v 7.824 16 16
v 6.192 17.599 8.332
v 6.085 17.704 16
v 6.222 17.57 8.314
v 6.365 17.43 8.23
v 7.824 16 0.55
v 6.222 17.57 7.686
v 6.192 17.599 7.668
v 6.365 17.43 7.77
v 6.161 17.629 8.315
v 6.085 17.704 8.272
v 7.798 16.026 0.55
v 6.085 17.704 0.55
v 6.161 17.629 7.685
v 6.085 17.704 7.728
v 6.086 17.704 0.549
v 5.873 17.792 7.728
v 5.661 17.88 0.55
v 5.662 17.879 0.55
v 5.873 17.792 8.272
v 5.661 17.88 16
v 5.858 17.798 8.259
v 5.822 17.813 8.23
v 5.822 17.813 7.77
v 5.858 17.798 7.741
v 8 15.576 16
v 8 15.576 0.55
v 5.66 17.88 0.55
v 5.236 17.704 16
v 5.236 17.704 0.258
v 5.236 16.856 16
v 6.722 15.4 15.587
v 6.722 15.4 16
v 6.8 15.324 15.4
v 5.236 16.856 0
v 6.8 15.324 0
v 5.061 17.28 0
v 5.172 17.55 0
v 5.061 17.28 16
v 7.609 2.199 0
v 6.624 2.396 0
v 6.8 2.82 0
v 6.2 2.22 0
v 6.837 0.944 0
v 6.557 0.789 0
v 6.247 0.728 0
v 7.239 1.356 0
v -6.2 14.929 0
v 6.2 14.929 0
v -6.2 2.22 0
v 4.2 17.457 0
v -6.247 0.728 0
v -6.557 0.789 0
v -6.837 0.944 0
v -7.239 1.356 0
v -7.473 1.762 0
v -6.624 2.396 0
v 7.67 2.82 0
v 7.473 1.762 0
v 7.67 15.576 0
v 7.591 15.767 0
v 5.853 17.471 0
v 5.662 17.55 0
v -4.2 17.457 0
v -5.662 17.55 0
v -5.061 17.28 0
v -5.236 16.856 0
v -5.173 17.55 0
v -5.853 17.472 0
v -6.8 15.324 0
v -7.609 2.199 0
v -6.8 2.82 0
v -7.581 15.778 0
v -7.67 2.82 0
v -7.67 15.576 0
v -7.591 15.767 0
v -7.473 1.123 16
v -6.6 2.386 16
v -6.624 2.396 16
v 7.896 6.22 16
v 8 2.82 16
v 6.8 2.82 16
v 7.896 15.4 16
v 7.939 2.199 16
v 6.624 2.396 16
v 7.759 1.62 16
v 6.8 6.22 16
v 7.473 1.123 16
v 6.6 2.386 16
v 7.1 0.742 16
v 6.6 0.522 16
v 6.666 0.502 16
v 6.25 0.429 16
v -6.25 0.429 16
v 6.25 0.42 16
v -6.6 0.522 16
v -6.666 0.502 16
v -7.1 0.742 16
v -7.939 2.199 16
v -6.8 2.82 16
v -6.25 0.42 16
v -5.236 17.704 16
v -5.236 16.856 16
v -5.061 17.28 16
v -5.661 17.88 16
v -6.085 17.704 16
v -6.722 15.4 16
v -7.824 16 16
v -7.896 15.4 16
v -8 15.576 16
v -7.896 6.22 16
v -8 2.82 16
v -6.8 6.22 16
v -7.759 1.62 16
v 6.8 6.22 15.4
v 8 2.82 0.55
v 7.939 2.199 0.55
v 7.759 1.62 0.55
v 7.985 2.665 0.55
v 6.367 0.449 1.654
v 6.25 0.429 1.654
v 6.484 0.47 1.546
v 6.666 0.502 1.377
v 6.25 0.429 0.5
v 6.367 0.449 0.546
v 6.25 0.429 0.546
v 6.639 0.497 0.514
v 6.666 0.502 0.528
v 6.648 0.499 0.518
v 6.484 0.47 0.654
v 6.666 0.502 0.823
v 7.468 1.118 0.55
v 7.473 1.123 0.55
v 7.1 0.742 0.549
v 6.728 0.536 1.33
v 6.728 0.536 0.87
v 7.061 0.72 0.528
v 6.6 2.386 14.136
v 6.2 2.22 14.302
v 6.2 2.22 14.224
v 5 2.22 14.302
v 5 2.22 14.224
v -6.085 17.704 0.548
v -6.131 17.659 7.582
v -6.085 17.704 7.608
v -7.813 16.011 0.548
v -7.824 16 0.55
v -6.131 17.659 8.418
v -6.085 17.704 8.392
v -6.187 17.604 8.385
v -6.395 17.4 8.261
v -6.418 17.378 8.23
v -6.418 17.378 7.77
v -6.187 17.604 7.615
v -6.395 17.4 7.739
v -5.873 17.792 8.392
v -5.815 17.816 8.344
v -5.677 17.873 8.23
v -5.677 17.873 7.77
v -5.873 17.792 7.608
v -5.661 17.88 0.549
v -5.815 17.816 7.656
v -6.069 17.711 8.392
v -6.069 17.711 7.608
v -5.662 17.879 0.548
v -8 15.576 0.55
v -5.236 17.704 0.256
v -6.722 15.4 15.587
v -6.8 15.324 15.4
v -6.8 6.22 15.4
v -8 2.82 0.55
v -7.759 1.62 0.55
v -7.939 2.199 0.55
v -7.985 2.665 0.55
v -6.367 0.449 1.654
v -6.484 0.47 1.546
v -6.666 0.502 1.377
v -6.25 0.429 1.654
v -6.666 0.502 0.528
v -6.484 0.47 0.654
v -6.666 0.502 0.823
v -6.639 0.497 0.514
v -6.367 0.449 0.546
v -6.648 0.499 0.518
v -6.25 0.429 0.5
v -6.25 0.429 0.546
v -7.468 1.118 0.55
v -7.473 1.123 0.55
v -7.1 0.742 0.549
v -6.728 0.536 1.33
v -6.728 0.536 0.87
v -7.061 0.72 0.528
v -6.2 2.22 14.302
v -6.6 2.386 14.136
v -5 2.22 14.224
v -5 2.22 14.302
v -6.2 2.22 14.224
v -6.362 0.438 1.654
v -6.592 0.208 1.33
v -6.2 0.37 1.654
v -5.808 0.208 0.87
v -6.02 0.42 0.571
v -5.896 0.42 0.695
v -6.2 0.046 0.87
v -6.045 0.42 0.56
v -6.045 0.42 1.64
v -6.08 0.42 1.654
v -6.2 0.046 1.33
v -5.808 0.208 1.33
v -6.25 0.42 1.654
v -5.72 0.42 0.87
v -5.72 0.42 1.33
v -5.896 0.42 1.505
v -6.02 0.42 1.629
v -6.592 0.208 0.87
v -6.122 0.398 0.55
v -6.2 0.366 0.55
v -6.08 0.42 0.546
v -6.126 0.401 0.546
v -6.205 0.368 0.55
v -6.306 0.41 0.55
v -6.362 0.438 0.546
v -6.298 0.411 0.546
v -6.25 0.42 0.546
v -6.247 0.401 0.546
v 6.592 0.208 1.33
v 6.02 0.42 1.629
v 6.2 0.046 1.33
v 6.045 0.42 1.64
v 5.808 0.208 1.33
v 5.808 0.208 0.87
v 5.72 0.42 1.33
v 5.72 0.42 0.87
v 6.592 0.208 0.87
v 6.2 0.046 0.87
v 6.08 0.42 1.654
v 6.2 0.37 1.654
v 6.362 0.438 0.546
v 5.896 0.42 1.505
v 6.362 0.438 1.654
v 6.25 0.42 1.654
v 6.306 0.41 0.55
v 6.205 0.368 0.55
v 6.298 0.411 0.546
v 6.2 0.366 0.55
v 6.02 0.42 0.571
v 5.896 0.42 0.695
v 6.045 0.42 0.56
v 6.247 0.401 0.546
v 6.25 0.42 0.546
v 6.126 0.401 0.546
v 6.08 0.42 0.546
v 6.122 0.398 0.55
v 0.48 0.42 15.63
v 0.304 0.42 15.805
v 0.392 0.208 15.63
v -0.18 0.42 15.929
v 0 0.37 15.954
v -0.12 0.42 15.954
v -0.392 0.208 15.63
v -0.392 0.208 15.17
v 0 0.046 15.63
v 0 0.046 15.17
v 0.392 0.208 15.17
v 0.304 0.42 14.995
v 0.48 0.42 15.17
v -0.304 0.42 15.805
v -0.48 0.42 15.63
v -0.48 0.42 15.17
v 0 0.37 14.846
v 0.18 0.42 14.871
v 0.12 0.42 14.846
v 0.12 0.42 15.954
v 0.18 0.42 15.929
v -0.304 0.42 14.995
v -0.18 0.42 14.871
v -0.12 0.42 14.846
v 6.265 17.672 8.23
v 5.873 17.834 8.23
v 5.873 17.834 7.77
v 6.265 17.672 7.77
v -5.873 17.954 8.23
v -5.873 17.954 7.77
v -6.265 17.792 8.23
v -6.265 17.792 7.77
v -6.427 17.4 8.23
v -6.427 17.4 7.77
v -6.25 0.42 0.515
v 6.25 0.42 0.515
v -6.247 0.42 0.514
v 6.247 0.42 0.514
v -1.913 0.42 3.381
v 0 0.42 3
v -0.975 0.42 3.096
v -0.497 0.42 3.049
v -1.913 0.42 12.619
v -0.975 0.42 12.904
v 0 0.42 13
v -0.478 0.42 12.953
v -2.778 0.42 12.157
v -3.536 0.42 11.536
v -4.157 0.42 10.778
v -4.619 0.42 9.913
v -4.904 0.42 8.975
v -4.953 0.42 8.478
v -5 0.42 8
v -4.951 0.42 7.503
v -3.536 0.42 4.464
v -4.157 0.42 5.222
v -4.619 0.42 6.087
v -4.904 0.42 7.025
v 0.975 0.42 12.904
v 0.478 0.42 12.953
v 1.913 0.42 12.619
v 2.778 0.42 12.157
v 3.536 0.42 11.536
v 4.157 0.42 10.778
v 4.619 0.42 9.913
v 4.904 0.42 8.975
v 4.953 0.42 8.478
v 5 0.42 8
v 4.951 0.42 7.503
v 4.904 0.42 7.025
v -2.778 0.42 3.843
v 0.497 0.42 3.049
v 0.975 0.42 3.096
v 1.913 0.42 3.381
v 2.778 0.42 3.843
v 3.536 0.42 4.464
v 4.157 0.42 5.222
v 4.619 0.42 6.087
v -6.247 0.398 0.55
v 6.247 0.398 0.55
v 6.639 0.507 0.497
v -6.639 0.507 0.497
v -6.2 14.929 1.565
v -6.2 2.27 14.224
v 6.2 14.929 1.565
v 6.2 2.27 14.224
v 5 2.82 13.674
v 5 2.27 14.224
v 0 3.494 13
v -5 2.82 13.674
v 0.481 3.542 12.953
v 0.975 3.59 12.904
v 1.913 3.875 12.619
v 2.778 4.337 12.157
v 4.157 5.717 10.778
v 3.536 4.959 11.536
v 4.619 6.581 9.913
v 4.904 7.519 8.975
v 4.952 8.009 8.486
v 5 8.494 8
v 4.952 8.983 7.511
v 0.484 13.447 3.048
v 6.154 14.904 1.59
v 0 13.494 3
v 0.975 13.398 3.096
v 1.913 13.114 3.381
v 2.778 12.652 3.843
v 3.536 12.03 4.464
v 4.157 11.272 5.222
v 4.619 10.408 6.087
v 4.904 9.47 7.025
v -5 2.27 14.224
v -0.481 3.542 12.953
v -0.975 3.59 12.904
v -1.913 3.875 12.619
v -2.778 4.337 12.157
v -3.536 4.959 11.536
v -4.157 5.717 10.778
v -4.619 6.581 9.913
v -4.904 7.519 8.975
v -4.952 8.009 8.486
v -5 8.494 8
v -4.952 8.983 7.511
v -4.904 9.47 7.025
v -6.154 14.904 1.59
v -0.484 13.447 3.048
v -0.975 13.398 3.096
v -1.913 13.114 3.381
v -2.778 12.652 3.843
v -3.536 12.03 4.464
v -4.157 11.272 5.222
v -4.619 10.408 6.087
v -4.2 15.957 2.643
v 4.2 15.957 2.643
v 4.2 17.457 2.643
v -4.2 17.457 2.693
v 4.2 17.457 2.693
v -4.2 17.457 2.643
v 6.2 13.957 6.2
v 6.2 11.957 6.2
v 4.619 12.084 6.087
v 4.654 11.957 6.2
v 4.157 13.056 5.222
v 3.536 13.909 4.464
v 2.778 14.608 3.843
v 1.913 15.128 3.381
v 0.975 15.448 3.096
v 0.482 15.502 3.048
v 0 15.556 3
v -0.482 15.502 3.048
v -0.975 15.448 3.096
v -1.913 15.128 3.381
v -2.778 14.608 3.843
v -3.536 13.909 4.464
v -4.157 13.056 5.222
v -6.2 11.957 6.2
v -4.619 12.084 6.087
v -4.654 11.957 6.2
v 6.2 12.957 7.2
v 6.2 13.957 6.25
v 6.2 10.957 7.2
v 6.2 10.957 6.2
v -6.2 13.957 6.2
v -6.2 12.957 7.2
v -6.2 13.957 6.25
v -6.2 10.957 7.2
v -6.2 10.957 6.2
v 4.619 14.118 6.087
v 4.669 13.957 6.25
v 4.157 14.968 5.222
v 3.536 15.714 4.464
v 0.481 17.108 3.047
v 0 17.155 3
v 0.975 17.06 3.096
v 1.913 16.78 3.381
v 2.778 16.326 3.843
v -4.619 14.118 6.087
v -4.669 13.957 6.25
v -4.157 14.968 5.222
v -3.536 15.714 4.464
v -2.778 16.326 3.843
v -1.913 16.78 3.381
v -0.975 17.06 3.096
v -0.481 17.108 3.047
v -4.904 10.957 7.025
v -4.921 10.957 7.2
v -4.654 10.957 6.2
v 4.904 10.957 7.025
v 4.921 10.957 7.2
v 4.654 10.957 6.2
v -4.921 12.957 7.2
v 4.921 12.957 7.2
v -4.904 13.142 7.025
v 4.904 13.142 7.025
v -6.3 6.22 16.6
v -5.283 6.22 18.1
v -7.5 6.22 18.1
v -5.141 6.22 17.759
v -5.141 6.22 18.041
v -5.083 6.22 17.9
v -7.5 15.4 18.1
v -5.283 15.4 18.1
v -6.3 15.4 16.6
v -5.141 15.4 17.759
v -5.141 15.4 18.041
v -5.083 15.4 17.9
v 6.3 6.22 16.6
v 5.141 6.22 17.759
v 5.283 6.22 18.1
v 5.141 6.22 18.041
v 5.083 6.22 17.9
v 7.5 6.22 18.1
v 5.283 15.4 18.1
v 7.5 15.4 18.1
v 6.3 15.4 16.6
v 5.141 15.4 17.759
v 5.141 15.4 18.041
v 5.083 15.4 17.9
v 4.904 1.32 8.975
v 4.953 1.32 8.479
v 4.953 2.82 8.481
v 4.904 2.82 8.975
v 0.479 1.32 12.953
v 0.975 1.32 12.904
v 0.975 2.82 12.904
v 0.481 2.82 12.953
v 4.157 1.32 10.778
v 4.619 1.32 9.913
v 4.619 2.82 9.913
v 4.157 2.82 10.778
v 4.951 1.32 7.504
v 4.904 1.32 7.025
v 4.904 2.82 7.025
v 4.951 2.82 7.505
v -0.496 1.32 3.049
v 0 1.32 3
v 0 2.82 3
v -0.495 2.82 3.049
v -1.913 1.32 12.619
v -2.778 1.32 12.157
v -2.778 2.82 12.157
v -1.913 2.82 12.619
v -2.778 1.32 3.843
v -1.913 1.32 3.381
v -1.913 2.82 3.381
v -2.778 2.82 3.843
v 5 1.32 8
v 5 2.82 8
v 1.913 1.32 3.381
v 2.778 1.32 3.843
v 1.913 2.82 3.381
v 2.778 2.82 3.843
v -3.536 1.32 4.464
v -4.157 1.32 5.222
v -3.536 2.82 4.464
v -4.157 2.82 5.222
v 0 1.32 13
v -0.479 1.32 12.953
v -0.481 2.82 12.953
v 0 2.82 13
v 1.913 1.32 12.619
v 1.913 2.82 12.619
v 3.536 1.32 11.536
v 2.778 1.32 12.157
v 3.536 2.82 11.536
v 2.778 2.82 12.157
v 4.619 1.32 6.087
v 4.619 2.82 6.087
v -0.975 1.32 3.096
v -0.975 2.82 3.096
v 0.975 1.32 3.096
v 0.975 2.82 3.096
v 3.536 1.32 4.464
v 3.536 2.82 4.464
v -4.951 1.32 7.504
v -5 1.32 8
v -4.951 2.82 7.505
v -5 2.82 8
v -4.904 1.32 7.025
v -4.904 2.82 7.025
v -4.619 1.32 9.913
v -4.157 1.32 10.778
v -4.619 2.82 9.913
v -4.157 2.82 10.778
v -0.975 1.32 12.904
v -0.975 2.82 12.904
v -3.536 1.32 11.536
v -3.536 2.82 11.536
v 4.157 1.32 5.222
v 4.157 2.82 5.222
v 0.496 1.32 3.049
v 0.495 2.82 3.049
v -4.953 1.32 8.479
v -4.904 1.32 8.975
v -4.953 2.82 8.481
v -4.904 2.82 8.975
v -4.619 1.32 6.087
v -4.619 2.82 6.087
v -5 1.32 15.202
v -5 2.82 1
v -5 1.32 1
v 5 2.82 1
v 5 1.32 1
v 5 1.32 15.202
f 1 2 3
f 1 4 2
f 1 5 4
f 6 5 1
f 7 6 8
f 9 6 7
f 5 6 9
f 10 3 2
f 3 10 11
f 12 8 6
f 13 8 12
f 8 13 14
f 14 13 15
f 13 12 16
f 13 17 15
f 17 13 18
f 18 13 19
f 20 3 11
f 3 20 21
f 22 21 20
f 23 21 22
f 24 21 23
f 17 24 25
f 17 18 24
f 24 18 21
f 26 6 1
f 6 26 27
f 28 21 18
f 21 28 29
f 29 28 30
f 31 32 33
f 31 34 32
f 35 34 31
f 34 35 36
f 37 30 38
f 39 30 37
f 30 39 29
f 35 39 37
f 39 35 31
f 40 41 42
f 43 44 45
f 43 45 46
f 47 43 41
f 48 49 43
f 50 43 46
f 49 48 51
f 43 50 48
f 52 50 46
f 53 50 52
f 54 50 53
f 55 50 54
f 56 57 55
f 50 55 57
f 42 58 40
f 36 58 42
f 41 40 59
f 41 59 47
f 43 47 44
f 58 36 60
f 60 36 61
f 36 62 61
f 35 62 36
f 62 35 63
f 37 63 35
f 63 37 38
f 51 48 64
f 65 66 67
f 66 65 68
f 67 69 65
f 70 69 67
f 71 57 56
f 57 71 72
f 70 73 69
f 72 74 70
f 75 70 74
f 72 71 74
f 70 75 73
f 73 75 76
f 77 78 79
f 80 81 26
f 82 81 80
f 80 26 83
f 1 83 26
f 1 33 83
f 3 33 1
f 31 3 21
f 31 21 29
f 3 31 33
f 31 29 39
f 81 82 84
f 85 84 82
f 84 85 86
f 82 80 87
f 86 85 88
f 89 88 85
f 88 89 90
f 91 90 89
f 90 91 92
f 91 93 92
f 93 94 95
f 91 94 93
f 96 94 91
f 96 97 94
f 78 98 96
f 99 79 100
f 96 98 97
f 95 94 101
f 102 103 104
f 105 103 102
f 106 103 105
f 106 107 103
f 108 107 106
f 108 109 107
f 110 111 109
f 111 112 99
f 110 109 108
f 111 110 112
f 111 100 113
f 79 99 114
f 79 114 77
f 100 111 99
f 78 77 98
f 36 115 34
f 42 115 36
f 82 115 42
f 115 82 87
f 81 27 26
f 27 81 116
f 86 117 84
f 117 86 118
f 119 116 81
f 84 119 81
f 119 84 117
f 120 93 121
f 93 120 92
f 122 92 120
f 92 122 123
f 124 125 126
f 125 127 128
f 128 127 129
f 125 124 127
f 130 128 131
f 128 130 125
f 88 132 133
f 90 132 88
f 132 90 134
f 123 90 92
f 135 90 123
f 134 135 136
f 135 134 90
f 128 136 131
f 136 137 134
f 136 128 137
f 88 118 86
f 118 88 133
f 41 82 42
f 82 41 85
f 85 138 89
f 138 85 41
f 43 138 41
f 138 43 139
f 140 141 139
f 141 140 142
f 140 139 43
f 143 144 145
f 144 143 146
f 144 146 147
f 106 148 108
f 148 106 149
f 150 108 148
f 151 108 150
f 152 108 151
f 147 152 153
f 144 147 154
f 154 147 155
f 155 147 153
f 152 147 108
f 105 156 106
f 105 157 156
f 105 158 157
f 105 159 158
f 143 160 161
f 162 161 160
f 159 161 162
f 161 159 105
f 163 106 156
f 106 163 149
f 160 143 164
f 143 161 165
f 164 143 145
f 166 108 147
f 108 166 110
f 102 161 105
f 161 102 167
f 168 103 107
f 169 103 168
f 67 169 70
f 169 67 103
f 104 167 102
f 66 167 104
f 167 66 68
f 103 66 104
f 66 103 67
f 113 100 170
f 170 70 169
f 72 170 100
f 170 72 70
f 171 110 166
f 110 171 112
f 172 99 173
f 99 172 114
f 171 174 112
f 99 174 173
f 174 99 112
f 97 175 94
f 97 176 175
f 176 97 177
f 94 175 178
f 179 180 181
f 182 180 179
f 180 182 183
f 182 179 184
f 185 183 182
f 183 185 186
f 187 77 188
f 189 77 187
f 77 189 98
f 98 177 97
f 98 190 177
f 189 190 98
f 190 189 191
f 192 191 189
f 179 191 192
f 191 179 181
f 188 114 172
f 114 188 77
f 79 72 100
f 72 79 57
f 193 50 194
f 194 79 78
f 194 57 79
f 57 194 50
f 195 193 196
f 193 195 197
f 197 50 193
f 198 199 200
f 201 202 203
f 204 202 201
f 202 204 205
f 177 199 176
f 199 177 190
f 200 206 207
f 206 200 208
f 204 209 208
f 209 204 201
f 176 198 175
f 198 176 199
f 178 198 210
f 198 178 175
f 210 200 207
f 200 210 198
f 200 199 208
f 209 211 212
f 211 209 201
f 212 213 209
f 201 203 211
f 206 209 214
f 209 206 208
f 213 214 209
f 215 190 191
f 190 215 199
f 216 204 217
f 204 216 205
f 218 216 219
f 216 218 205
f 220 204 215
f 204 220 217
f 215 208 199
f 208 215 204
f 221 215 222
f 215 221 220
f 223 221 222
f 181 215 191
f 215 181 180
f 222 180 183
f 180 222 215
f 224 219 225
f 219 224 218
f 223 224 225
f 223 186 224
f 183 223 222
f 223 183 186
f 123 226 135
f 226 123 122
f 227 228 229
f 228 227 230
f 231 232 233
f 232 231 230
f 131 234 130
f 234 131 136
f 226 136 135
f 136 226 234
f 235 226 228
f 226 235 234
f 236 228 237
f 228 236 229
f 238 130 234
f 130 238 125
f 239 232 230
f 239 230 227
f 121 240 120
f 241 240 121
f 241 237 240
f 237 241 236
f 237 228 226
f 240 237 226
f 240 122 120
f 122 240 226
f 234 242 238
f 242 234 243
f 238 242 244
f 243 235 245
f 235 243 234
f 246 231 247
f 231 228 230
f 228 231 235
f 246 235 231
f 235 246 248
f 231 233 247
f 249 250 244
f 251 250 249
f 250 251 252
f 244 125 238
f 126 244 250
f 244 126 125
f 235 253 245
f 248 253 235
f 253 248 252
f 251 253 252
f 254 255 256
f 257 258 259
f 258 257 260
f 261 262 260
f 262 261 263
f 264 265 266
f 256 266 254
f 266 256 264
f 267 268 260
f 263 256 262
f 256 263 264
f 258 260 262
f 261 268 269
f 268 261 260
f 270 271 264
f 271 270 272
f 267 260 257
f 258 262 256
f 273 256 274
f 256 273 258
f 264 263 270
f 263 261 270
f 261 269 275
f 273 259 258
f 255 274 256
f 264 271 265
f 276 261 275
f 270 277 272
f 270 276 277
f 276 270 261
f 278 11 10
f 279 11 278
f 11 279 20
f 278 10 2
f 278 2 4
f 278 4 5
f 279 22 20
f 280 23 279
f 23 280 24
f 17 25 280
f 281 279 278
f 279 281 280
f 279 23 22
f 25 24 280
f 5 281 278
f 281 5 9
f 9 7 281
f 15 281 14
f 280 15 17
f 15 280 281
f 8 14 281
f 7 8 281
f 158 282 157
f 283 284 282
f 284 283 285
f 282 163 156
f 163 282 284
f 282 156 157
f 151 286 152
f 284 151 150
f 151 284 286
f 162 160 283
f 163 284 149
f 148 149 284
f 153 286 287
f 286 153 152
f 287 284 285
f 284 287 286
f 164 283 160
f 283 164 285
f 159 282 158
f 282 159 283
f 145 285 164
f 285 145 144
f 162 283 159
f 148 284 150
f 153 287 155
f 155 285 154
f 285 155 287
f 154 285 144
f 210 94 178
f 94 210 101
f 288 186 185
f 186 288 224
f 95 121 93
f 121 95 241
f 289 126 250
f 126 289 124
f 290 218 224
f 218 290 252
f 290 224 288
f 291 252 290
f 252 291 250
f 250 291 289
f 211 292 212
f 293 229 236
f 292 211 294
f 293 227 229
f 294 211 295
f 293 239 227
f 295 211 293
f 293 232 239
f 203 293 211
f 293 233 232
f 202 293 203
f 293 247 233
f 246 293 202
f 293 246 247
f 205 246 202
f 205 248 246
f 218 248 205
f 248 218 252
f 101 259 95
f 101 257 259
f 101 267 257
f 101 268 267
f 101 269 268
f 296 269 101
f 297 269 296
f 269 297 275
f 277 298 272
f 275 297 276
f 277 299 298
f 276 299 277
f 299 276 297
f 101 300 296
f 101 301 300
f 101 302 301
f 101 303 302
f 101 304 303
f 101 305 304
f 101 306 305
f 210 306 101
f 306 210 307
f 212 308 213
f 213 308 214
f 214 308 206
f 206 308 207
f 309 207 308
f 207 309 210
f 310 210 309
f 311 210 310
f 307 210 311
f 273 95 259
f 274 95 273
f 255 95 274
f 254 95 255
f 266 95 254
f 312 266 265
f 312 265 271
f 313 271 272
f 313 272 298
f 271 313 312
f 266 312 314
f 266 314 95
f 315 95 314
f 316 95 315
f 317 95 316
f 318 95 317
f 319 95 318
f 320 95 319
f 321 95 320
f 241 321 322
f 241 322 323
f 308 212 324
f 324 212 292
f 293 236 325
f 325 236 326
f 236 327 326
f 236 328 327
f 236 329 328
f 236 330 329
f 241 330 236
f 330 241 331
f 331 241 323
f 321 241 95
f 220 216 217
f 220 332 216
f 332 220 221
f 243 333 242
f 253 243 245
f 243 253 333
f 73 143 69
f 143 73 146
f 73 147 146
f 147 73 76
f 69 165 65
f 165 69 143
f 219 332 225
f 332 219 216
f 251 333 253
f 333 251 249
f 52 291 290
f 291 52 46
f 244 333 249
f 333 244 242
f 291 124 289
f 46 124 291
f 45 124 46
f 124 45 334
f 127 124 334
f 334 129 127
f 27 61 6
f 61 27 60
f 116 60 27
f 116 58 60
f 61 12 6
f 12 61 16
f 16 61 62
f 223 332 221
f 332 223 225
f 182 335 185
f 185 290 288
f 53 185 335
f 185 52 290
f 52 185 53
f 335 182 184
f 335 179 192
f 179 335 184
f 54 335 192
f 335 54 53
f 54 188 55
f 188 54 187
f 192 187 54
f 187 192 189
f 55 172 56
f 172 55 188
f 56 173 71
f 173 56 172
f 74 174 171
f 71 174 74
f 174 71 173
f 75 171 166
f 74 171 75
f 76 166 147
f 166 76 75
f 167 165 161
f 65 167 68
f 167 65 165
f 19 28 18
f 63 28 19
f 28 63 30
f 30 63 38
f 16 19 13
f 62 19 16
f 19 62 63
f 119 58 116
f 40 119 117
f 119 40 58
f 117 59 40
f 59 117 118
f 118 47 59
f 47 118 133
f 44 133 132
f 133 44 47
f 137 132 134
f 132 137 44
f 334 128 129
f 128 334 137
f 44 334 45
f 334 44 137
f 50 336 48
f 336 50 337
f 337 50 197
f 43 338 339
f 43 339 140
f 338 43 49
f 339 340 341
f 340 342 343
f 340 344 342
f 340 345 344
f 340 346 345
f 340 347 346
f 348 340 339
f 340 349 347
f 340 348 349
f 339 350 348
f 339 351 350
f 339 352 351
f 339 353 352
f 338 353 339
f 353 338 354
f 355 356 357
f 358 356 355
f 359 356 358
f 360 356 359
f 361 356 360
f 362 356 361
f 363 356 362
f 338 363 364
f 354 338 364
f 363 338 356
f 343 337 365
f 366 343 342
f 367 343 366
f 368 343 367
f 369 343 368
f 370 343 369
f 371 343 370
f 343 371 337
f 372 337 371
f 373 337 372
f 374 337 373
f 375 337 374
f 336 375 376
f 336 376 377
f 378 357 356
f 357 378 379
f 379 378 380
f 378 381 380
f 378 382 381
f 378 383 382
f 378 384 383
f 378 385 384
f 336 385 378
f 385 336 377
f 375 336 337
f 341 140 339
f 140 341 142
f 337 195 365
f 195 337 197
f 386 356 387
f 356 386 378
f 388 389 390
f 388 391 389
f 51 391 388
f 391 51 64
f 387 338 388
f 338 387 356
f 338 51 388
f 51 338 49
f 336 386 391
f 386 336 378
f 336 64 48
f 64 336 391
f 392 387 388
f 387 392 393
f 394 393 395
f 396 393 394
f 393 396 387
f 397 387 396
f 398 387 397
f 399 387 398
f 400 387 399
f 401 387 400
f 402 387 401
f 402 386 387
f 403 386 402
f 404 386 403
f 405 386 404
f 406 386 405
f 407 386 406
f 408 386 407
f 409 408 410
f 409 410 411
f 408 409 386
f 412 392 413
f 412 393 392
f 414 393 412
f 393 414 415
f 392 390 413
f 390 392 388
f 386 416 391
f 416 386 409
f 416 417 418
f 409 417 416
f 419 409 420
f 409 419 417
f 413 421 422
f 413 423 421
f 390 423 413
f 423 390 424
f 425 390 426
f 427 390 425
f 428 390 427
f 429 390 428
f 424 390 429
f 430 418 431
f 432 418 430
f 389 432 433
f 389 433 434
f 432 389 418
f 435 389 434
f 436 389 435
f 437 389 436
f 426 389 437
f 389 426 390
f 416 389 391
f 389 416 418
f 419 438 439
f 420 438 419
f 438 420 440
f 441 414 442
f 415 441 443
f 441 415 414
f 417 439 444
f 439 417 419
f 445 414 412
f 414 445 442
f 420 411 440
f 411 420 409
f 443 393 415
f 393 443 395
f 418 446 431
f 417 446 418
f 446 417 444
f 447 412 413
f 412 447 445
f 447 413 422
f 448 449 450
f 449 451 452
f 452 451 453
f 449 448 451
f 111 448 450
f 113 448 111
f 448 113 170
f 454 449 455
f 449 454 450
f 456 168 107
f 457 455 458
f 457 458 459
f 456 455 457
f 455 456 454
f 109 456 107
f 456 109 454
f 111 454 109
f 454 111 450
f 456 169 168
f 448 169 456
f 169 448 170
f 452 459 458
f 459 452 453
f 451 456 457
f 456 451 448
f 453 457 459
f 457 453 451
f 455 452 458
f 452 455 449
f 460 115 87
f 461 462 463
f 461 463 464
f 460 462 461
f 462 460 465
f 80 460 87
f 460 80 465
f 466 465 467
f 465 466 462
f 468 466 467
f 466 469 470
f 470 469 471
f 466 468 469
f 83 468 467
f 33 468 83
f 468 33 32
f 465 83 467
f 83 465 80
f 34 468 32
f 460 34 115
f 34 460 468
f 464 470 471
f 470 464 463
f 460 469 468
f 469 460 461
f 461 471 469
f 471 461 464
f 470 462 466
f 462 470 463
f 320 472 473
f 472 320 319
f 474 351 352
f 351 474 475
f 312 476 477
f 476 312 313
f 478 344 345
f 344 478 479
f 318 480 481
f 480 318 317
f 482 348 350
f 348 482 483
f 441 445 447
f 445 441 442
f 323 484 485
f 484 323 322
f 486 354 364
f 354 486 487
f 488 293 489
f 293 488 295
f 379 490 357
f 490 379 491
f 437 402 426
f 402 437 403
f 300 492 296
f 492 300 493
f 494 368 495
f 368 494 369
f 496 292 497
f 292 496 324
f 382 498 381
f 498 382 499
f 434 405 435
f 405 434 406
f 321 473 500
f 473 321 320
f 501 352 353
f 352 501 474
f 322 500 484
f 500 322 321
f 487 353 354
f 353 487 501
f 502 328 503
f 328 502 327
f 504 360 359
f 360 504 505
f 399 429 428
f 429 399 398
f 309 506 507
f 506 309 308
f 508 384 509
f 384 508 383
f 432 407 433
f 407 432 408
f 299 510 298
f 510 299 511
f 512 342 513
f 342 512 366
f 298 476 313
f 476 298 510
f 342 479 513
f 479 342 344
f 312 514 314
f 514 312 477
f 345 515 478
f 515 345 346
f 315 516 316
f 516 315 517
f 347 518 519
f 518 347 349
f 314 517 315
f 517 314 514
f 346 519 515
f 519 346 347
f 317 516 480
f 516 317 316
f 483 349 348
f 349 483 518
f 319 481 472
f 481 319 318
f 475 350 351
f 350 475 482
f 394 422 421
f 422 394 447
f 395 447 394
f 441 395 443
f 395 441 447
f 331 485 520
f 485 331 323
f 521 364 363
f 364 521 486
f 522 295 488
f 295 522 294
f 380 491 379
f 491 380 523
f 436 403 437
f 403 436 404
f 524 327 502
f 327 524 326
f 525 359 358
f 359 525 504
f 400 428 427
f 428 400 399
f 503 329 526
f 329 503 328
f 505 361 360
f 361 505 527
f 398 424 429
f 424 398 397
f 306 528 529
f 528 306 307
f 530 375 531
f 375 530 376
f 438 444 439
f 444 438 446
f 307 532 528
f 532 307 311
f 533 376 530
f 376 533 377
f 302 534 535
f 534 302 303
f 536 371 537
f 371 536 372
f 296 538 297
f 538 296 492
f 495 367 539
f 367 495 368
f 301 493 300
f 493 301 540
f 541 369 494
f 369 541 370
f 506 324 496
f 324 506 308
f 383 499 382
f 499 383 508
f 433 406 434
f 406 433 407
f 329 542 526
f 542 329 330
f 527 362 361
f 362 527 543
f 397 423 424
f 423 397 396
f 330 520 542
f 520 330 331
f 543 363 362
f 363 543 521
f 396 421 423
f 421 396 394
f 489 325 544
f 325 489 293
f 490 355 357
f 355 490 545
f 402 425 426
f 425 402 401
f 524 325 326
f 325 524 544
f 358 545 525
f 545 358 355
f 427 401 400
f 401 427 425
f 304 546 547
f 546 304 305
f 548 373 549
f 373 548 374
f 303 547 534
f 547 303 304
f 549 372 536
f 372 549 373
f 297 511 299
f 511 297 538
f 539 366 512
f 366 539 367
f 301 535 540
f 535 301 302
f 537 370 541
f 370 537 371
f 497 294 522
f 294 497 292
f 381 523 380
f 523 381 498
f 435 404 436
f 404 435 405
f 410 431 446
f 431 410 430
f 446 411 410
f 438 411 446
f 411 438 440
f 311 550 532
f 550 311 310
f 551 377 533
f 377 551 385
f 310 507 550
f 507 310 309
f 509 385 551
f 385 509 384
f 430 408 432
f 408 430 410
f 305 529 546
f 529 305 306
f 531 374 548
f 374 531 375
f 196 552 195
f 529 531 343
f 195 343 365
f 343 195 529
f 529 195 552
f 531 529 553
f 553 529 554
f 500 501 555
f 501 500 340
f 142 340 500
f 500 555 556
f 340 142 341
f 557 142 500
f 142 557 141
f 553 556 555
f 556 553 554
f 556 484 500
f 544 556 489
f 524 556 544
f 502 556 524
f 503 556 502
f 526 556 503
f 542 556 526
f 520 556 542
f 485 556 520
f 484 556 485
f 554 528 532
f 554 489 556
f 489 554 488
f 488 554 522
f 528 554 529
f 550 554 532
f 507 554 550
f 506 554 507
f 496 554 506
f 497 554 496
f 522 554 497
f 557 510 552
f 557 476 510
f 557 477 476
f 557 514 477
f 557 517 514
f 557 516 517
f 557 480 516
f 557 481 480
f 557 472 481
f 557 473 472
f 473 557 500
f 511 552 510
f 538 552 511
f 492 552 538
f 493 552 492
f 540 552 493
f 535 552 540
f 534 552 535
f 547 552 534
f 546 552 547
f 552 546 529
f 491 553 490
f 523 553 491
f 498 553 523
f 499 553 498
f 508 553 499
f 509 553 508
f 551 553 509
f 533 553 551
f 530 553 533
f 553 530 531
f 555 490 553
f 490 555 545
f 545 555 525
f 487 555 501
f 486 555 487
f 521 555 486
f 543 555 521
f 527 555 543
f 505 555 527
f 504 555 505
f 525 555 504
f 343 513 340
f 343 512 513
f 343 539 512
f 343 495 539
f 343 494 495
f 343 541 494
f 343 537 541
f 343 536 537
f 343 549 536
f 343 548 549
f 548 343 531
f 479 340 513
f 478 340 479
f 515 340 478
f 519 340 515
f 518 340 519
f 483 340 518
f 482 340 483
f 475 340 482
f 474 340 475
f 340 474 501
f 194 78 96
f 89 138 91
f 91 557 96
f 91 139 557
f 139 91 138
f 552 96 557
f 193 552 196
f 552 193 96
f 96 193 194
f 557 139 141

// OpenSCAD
// file: microscope_parameters.scad
/******************************************************************
*                                                                 *
* OpenFlexure Microscope: Microscope Parameters                   *
*                                                                 *
* This is the top-level configuration file for the OpenFlexure    *
* microscope, an open microscope and 3-axis translation stage.    *
* It gets really good precision over a ~10mm range, by using      *
* plastic flexure mechanisms.                                     *
*                                                                 *
* Generally I've tried to put parts (or collections of closely    *
* related parts) in their own files.  However, all the parts      *
* depend on the geometry of the microscope - so these parameters  *
* are gathered together here.  In general, the ones you might     *
* to change are towards the top!  Lower-down ones are defined in  *
* terms of higher-up ones - confusion might arise if you redefine *
* these later...                                                  *
*                                                                 *
* (c) Richard Bowman, January 2016                                *
* Released under the CERN Open Hardware License                   *
*                                                                 *
* http://www.github.com/rwb27/openflexure_microscope              *
* http://www.docubricks.com/projects/openflexure-microscope       *
* http://www.waterscope.org                                       *
*                                                                 *
******************************************************************/

d = 0.05;
$fn=32;

// These are the most useful parameters to change!
big_stage = true; //this option is obsolete and must now always be true...
motor_lugs = true;
version_numstring = "6.0.0";
camera = "picamera_2"; //see cameras/camera.scad for valid values
optics = "rms_f50d13"; //see optics.scad for valid values
led_r = 4.5/2; //size of the LED used for illumination
endstops = false; //whether to build mounts for optical endstops inside the microscope.
feet_endstops = false; //whether to include cut-outs for endstop switches in the feet. 
beamsplitter = false; //enables a cut-out in some optics modules for a beamsplitter
smart_brim_r = 5;
enable_smart_brim = false;

// This sets the basic geometry of the microscope
sample_z = big_stage?65:40; // height of the top of the stage
leg_r = big_stage?30:25; // radius of innermost part of legs (stage size)
hole_r = big_stage?20:10; // size of hole in the stage
xy_lever_ratio = big_stage?4.0/7.0:1.0; // mechanical advantage of actuator over stage - can be used to trade speed and precision
z_lever_ratio = 1.0; // as above, for Z axis (must be >1)
// The variables below affect the position of the objective mount
z_strut_l = big_stage?18:15; //length of struts supporting Z carriage
objective_mount_y = big_stage?18:12; // y position of clip for optics
objective_mount_nose_w = 6; // width of the pointy end of the mount
condenser_clip_w = 14; // width of the dovetail clip for the condenser
foot_height=feet_endstops?15:15; //the endstops need a bit of extra height (or not)

// These variables set the dimensions of flexures
// You might want to tweak them if your material (or printer)
// is different from the ones I've tested, though ABS/PLA extrusion
// is generally fine with my parameters
stage_flex_w = 4; // width of XY axis flexures
zflex_l = 1.5;    // length of (all) flexible bits
zflex_t = 0.75;   // thickness of (all) flexible bits
zflex = [stage_flex_w, zflex_l, zflex_t]; // the above in new-style format
flex_a = 0.15;    // sine of the angle through which flexures can be bent

// Compile a sensible version string
version_string = str("v",version_numstring, big_stage?"-LS":"-SS", sample_z, motor_lugs?"-M":"");
echo(str("Compiling OpenFlexure Microscope ",version_string));

stage_t=5; //thickness of the XY stage (at thickest point, most is 1mm less)
flex_z1 = 0;      // z position of lower flexures for XY axis
flex_z2 = sample_z-stage_t; //height of upper XY flexures
z_strut_t = 6;  // (z) thickness of struts for Z axis
z_flex_w = 4;   // width of struts for Z axis
leg = [4,stage_flex_w,flex_z2+zflex_t]; // size of vertical legs
leg_middle_w = 12; // width of the middle part of each leg
actuator_h = 25; //height of the actuator columns
dz = 0.5; //small increment in Z (~ 2 layers)

leg_outer_w = leg_middle_w + 2*zflex_l + 2*leg[0]; // overall width of parallelogram legs that support the stagef
actuator = [3*1.2+2*2,(flex_z2 - flex_z1)*xy_lever_ratio,6]; // dimensions of the core part of the actuating levers for X and Y - NB should match the column_base_r in compact_nut_seat.scad
actuating_nut_r = (flex_z2 - flex_z1)*xy_lever_ratio; // distance from leg_r to the actuating nut/screw for the XY axes
xy_actuator_travel = actuating_nut_r*0.15; // distance moved by XY axis actuators

// Z axis
z_flexures_z1 = 8; // height of the lower Z flexure
z_flexures_z2 = min(sample_z - 12, 35); // " upper "
objective_mount_back_y = objective_mount_y + 2; //back of objective mount
z_anchor_y = objective_mount_back_y + z_strut_l + 2*zflex[1]; // fixed end of the flexure-hinged lever that actuates the Z axis
z_anchor_w = 20; //width of the Z anchor
zll = (z_strut_l + zflex[1])*z_lever_ratio; //required actuator lever length
zfz = z_flexures_z1; // shorthand for the next line only!
z_nut_y = z_anchor_y - zflex[1]/2 + sqrt(zll*zll - zfz*zfz);
z_actuator_travel = zll*0.15; // distance moved by the Z actuator
z_actuator_tilt = -asin(z_flexures_z1/zll); //angle of the Z actuator

z_flexure_x = (leg_r-zflex_l-max(5,leg[2]*0.1))*sqrt(2); // x position of the outside of the Z-axis static anchors (either side of the XY stage, on the X axis) (no longer used by Z axis but still in use elsewhere.)

bridge_dz = 10; // spacing between thin links on legs
base_t=1; // thickness of the flat base of the structure
wall_h=15; // height of the stiffening vertical(ish) walls
wall_t=2; //thickness of the stiffening walls
zawall_h = z_flexures_z2 - 10; //height of wall near Z anchor
zbwall_h = z_flexures_z2 - 10; //height of bridge over Z lever
illumination_clip_y = (-(leg_r-zflex_l-wall_t/2+leg_outer_w/2)/sqrt(2)
                       -wall_t/2-1); //position of clip for
                      // illumination/back foot.  This is set to
                      // coincide with the wall between the back
                      // two legs. TODO: remove this
illumination_arm_screws = [[20,z_nut_y,sample_z-2],[-20,z_nut_y,sample_z-2], 
                           [0,(leg_r + leg_outer_w)/sqrt(2) + 4,sample_z-2]];
                      // positions of screws that mount the adjustable version of the 
                      // illumination arm
condenser_clip_y = -8; //position of dovetail for old condenser assembly TODO: rename this
base_mounting_holes = [[-20,z_nut_y-4,0],
                       [20,z_nut_y-4,0],
                       [-z_flexure_x-4,big_stage?-8:-4,0],
                       [z_flexure_x+4,big_stage?-8:-4,0]]; 
                       // holes to screw the microscope to a baseplate

endstop_extra_ringheight=feet_endstops?1:0;
endstop_hole_offset=0;
//this is a temporary option to printfeet with smaller travel
//without this with 15mm hole the stage hits the objective
//the stage can move ~3mm in each direction, so the actuator only moves
//~1.7 mm
avoid_objective_xyfoot_offset=xy_actuator_travel-1.8;

fl_cube_w = 16; //width of the fluorescence filter cube
// main file
/******************************************************************
*                                                                 *
* OpenFlexure Microscope: Optics unit                             *
*                                                                 *
* This is part of the OpenFlexure microscope, an open-source      *
* microscope and 3-axis translation stage.  It gets really good   *
* precision over a ~10mm range, by using plastic flexure          *
* mechanisms.                                                     *
*                                                                 *
* The optics module holds the camera and whatever lens you are    *
* using as an objective - current options are either the lens     *
* from the Raspberry Pi camera module, or an RMS objective lens   *
* and a second "tube length conversion" lens (usually 40mm).      *
*                                                                 *
* See the section at the bottom of the file for different         *
* versions, to suit different combinations of optics/cameras.     *
* NB you set the camera in the variable at the top of the file.   *
*                                                                 *
* (c) Richard Bowman, January 2016                                *
* Released under the CERN Open Hardware License                   *
*                                                                 *
******************************************************************/

use <utilities.scad>;
include <microscope_parameters.scad>; // NB this defines "camera" and "optics"


module chamfer_bottom_edge(chamfer=0.3, h=0.5){
    difference(){
        children();
        
        minkowski(){
            cylinder(r1=2*chamfer, r2=0, h=2*h, center=true);
            linear_extrude(d) difference(){
                square(9999, center=true);
                projection(cut=true) translate([0,0,-d]) hull() children();
            }
        }
    }
}

module fl_cube_outer(){
    // The outer body for fl_cube()
    roc = 0.6;
    w = fl_cube_w;
    foot = roc*0.7;
    bottom_t = roc*3;
    $fn=8;
    chamfer_bottom_edge() union(){
        reflect([1,0,0]){
            // outer "arms" that are responsible for the tight fit
            sequential_hull(){
                translate([w/2-2-roc*0.8/sqrt(2), w+2-roc*1.2, 0]) cylinder(r=roc, h=w);
                translate([w/2-roc, w-roc/sqrt(2), 0]) cylinder(r=roc, h=w);
                translate([w/2-roc, foot+bottom_t+roc, 0]) cylinder(r=roc, h=w);
            }
            translate([w/2-3*roc, foot+bottom_t+roc, 0]) difference(){
                // the curved bits at the bottom
                resize([0,(bottom_t+roc)*2,0]) cylinder(r=3*roc, h=w, $fn=24);
                // cut out the inner radius
                cylinder(r=roc, h=999, center=true);
                // restrict it to a quarter-turn
                mirror([1,0,0]) translate([-roc,0,-99]) cube(999);
                mirror([1,0,0]) translate([0,-roc,-99]) cube(999);
            }
        }
        // join the two arms together at the bottom
        translate([0,foot+bottom_t/2, w/2]) cube([w - roc*3*2 + 2*d, bottom_t, w], center=true);
        
        // feet at the bottom (and also in the middle of the top part)
        for(p = [[-w/2+roc*3, roc, roc+0.5], 
                 [w/2-roc*3, roc, roc+0.5], 
                 [0, roc, w-roc],
                 [w/2-2-roc*0.3/sqrt(2), w+2-roc*1.2, w/2],
                 [-(w/2-2-roc*0.3/sqrt(2)), w+2-roc*1.0, w/2]
                ]){
            translate(p) sphere(r=roc,$fn=8);
        }
    }
}

module fl_cube(){
    // Filter cube that slots into a suitably-modified optics module
    // This prints with the Y axis vertical - to save rotating all the
    // cylinders, it's written here as printed.
    roc = 0.6;
    w = fl_cube_w;
    foot = roc*0.7;
    bottom_t = roc*3;
    dichroic = [12,16,1.1];
    dichroic_t = dichroic[2];
    emission_filter = [10,14,1.5];
    beamsplit = [0, w/2+2, w/2];
    inner_w = w - 6*roc;
    bottom = bottom_t + foot;
    $fn=8;
    difference(){
        union(){
            fl_cube_outer();
            
            // mount for 45 degree dichroic, with bottom retaining clip
            by = beamsplit[1] + dichroic[1]/2/sqrt(2) + 0.3; //coated tip of dichroic + wiggle room
            bz = beamsplit[2] - dichroic[1]/2/sqrt(2) + 0.3; //coated tip of dichroic + wiggle room
            bby = beamsplit[1] + dichroic[1]/2/sqrt(2) - dichroic[2]/sqrt(2); //back tip of dichroic
            bbz = beamsplit[2] - dichroic[1]/2/sqrt(2) - dichroic[2]/sqrt(2); //back tip of dichroic
            sequential_hull(){
                translate([-inner_w/2, bottom, 0]) cube([inner_w, d, beamsplit[2] + beamsplit[1] - bottom - dichroic_t*sqrt(2)]); // tall back of triangle
                translate([-inner_w/2, bby, 0]) cube([inner_w, d, bbz]); //pointy end of triangle
                translate([-inner_w/2+2, by, 0]) cube([inner_w-4, 1.5, bz]); //far end
                translate([-inner_w/2+2, by, bz]) cube([inner_w-4, 1.5, d]); //start of retaining clip
                translate([-inner_w/2, by - 4, 4 + 2*dichroic_t]) cube([inner_w, 2, d]); //end of retaining clip
                translate([-inner_w/2, by - 5, 4 + 2*dichroic_t]) cube([inner_w, 2, 1]); //overhanging bit
            }
            
            // attachment for the excitation filter and LED
            reflect([1,0,0]) translate([-w/2, bottom + 4, w]) sequential_hull(){
                depth = w-bottom-4-roc;
                translate([0,0,-roc]) cube([2*roc, depth, d]); 
                translate([0.5,0,roc]) cube([2*roc, depth, 1.5]);
                translate([0.5+2*roc + 1.5 - 0.2*(1+sqrt(2)),0,roc+1.5-0.2]) rotate([-90,0,0]) cylinder(r=0.2, h=depth);//cube([2*roc + 1.5, depth, d]);
            }
        }
        // hole for the beam
        translate(beamsplit) rotate([90,0,0]) cylinder(r=5,h=999, center=true, $fn=32);
        // hole for the emission filter
        translate([-emission_filter[0]/2, bottom - roc*1.5, beamsplit[2]-emission_filter[1]/2]) cube([emission_filter[0], emission_filter[2], 999]);
        // access hole for the dichroic
        translate(beamsplit) rotate([-45,0,0]) translate([0,-dichroic[1]/2,0]) scale([1.1,1,1.9]) cube(dichroic, center=true);
    }
}

fl_cube();
